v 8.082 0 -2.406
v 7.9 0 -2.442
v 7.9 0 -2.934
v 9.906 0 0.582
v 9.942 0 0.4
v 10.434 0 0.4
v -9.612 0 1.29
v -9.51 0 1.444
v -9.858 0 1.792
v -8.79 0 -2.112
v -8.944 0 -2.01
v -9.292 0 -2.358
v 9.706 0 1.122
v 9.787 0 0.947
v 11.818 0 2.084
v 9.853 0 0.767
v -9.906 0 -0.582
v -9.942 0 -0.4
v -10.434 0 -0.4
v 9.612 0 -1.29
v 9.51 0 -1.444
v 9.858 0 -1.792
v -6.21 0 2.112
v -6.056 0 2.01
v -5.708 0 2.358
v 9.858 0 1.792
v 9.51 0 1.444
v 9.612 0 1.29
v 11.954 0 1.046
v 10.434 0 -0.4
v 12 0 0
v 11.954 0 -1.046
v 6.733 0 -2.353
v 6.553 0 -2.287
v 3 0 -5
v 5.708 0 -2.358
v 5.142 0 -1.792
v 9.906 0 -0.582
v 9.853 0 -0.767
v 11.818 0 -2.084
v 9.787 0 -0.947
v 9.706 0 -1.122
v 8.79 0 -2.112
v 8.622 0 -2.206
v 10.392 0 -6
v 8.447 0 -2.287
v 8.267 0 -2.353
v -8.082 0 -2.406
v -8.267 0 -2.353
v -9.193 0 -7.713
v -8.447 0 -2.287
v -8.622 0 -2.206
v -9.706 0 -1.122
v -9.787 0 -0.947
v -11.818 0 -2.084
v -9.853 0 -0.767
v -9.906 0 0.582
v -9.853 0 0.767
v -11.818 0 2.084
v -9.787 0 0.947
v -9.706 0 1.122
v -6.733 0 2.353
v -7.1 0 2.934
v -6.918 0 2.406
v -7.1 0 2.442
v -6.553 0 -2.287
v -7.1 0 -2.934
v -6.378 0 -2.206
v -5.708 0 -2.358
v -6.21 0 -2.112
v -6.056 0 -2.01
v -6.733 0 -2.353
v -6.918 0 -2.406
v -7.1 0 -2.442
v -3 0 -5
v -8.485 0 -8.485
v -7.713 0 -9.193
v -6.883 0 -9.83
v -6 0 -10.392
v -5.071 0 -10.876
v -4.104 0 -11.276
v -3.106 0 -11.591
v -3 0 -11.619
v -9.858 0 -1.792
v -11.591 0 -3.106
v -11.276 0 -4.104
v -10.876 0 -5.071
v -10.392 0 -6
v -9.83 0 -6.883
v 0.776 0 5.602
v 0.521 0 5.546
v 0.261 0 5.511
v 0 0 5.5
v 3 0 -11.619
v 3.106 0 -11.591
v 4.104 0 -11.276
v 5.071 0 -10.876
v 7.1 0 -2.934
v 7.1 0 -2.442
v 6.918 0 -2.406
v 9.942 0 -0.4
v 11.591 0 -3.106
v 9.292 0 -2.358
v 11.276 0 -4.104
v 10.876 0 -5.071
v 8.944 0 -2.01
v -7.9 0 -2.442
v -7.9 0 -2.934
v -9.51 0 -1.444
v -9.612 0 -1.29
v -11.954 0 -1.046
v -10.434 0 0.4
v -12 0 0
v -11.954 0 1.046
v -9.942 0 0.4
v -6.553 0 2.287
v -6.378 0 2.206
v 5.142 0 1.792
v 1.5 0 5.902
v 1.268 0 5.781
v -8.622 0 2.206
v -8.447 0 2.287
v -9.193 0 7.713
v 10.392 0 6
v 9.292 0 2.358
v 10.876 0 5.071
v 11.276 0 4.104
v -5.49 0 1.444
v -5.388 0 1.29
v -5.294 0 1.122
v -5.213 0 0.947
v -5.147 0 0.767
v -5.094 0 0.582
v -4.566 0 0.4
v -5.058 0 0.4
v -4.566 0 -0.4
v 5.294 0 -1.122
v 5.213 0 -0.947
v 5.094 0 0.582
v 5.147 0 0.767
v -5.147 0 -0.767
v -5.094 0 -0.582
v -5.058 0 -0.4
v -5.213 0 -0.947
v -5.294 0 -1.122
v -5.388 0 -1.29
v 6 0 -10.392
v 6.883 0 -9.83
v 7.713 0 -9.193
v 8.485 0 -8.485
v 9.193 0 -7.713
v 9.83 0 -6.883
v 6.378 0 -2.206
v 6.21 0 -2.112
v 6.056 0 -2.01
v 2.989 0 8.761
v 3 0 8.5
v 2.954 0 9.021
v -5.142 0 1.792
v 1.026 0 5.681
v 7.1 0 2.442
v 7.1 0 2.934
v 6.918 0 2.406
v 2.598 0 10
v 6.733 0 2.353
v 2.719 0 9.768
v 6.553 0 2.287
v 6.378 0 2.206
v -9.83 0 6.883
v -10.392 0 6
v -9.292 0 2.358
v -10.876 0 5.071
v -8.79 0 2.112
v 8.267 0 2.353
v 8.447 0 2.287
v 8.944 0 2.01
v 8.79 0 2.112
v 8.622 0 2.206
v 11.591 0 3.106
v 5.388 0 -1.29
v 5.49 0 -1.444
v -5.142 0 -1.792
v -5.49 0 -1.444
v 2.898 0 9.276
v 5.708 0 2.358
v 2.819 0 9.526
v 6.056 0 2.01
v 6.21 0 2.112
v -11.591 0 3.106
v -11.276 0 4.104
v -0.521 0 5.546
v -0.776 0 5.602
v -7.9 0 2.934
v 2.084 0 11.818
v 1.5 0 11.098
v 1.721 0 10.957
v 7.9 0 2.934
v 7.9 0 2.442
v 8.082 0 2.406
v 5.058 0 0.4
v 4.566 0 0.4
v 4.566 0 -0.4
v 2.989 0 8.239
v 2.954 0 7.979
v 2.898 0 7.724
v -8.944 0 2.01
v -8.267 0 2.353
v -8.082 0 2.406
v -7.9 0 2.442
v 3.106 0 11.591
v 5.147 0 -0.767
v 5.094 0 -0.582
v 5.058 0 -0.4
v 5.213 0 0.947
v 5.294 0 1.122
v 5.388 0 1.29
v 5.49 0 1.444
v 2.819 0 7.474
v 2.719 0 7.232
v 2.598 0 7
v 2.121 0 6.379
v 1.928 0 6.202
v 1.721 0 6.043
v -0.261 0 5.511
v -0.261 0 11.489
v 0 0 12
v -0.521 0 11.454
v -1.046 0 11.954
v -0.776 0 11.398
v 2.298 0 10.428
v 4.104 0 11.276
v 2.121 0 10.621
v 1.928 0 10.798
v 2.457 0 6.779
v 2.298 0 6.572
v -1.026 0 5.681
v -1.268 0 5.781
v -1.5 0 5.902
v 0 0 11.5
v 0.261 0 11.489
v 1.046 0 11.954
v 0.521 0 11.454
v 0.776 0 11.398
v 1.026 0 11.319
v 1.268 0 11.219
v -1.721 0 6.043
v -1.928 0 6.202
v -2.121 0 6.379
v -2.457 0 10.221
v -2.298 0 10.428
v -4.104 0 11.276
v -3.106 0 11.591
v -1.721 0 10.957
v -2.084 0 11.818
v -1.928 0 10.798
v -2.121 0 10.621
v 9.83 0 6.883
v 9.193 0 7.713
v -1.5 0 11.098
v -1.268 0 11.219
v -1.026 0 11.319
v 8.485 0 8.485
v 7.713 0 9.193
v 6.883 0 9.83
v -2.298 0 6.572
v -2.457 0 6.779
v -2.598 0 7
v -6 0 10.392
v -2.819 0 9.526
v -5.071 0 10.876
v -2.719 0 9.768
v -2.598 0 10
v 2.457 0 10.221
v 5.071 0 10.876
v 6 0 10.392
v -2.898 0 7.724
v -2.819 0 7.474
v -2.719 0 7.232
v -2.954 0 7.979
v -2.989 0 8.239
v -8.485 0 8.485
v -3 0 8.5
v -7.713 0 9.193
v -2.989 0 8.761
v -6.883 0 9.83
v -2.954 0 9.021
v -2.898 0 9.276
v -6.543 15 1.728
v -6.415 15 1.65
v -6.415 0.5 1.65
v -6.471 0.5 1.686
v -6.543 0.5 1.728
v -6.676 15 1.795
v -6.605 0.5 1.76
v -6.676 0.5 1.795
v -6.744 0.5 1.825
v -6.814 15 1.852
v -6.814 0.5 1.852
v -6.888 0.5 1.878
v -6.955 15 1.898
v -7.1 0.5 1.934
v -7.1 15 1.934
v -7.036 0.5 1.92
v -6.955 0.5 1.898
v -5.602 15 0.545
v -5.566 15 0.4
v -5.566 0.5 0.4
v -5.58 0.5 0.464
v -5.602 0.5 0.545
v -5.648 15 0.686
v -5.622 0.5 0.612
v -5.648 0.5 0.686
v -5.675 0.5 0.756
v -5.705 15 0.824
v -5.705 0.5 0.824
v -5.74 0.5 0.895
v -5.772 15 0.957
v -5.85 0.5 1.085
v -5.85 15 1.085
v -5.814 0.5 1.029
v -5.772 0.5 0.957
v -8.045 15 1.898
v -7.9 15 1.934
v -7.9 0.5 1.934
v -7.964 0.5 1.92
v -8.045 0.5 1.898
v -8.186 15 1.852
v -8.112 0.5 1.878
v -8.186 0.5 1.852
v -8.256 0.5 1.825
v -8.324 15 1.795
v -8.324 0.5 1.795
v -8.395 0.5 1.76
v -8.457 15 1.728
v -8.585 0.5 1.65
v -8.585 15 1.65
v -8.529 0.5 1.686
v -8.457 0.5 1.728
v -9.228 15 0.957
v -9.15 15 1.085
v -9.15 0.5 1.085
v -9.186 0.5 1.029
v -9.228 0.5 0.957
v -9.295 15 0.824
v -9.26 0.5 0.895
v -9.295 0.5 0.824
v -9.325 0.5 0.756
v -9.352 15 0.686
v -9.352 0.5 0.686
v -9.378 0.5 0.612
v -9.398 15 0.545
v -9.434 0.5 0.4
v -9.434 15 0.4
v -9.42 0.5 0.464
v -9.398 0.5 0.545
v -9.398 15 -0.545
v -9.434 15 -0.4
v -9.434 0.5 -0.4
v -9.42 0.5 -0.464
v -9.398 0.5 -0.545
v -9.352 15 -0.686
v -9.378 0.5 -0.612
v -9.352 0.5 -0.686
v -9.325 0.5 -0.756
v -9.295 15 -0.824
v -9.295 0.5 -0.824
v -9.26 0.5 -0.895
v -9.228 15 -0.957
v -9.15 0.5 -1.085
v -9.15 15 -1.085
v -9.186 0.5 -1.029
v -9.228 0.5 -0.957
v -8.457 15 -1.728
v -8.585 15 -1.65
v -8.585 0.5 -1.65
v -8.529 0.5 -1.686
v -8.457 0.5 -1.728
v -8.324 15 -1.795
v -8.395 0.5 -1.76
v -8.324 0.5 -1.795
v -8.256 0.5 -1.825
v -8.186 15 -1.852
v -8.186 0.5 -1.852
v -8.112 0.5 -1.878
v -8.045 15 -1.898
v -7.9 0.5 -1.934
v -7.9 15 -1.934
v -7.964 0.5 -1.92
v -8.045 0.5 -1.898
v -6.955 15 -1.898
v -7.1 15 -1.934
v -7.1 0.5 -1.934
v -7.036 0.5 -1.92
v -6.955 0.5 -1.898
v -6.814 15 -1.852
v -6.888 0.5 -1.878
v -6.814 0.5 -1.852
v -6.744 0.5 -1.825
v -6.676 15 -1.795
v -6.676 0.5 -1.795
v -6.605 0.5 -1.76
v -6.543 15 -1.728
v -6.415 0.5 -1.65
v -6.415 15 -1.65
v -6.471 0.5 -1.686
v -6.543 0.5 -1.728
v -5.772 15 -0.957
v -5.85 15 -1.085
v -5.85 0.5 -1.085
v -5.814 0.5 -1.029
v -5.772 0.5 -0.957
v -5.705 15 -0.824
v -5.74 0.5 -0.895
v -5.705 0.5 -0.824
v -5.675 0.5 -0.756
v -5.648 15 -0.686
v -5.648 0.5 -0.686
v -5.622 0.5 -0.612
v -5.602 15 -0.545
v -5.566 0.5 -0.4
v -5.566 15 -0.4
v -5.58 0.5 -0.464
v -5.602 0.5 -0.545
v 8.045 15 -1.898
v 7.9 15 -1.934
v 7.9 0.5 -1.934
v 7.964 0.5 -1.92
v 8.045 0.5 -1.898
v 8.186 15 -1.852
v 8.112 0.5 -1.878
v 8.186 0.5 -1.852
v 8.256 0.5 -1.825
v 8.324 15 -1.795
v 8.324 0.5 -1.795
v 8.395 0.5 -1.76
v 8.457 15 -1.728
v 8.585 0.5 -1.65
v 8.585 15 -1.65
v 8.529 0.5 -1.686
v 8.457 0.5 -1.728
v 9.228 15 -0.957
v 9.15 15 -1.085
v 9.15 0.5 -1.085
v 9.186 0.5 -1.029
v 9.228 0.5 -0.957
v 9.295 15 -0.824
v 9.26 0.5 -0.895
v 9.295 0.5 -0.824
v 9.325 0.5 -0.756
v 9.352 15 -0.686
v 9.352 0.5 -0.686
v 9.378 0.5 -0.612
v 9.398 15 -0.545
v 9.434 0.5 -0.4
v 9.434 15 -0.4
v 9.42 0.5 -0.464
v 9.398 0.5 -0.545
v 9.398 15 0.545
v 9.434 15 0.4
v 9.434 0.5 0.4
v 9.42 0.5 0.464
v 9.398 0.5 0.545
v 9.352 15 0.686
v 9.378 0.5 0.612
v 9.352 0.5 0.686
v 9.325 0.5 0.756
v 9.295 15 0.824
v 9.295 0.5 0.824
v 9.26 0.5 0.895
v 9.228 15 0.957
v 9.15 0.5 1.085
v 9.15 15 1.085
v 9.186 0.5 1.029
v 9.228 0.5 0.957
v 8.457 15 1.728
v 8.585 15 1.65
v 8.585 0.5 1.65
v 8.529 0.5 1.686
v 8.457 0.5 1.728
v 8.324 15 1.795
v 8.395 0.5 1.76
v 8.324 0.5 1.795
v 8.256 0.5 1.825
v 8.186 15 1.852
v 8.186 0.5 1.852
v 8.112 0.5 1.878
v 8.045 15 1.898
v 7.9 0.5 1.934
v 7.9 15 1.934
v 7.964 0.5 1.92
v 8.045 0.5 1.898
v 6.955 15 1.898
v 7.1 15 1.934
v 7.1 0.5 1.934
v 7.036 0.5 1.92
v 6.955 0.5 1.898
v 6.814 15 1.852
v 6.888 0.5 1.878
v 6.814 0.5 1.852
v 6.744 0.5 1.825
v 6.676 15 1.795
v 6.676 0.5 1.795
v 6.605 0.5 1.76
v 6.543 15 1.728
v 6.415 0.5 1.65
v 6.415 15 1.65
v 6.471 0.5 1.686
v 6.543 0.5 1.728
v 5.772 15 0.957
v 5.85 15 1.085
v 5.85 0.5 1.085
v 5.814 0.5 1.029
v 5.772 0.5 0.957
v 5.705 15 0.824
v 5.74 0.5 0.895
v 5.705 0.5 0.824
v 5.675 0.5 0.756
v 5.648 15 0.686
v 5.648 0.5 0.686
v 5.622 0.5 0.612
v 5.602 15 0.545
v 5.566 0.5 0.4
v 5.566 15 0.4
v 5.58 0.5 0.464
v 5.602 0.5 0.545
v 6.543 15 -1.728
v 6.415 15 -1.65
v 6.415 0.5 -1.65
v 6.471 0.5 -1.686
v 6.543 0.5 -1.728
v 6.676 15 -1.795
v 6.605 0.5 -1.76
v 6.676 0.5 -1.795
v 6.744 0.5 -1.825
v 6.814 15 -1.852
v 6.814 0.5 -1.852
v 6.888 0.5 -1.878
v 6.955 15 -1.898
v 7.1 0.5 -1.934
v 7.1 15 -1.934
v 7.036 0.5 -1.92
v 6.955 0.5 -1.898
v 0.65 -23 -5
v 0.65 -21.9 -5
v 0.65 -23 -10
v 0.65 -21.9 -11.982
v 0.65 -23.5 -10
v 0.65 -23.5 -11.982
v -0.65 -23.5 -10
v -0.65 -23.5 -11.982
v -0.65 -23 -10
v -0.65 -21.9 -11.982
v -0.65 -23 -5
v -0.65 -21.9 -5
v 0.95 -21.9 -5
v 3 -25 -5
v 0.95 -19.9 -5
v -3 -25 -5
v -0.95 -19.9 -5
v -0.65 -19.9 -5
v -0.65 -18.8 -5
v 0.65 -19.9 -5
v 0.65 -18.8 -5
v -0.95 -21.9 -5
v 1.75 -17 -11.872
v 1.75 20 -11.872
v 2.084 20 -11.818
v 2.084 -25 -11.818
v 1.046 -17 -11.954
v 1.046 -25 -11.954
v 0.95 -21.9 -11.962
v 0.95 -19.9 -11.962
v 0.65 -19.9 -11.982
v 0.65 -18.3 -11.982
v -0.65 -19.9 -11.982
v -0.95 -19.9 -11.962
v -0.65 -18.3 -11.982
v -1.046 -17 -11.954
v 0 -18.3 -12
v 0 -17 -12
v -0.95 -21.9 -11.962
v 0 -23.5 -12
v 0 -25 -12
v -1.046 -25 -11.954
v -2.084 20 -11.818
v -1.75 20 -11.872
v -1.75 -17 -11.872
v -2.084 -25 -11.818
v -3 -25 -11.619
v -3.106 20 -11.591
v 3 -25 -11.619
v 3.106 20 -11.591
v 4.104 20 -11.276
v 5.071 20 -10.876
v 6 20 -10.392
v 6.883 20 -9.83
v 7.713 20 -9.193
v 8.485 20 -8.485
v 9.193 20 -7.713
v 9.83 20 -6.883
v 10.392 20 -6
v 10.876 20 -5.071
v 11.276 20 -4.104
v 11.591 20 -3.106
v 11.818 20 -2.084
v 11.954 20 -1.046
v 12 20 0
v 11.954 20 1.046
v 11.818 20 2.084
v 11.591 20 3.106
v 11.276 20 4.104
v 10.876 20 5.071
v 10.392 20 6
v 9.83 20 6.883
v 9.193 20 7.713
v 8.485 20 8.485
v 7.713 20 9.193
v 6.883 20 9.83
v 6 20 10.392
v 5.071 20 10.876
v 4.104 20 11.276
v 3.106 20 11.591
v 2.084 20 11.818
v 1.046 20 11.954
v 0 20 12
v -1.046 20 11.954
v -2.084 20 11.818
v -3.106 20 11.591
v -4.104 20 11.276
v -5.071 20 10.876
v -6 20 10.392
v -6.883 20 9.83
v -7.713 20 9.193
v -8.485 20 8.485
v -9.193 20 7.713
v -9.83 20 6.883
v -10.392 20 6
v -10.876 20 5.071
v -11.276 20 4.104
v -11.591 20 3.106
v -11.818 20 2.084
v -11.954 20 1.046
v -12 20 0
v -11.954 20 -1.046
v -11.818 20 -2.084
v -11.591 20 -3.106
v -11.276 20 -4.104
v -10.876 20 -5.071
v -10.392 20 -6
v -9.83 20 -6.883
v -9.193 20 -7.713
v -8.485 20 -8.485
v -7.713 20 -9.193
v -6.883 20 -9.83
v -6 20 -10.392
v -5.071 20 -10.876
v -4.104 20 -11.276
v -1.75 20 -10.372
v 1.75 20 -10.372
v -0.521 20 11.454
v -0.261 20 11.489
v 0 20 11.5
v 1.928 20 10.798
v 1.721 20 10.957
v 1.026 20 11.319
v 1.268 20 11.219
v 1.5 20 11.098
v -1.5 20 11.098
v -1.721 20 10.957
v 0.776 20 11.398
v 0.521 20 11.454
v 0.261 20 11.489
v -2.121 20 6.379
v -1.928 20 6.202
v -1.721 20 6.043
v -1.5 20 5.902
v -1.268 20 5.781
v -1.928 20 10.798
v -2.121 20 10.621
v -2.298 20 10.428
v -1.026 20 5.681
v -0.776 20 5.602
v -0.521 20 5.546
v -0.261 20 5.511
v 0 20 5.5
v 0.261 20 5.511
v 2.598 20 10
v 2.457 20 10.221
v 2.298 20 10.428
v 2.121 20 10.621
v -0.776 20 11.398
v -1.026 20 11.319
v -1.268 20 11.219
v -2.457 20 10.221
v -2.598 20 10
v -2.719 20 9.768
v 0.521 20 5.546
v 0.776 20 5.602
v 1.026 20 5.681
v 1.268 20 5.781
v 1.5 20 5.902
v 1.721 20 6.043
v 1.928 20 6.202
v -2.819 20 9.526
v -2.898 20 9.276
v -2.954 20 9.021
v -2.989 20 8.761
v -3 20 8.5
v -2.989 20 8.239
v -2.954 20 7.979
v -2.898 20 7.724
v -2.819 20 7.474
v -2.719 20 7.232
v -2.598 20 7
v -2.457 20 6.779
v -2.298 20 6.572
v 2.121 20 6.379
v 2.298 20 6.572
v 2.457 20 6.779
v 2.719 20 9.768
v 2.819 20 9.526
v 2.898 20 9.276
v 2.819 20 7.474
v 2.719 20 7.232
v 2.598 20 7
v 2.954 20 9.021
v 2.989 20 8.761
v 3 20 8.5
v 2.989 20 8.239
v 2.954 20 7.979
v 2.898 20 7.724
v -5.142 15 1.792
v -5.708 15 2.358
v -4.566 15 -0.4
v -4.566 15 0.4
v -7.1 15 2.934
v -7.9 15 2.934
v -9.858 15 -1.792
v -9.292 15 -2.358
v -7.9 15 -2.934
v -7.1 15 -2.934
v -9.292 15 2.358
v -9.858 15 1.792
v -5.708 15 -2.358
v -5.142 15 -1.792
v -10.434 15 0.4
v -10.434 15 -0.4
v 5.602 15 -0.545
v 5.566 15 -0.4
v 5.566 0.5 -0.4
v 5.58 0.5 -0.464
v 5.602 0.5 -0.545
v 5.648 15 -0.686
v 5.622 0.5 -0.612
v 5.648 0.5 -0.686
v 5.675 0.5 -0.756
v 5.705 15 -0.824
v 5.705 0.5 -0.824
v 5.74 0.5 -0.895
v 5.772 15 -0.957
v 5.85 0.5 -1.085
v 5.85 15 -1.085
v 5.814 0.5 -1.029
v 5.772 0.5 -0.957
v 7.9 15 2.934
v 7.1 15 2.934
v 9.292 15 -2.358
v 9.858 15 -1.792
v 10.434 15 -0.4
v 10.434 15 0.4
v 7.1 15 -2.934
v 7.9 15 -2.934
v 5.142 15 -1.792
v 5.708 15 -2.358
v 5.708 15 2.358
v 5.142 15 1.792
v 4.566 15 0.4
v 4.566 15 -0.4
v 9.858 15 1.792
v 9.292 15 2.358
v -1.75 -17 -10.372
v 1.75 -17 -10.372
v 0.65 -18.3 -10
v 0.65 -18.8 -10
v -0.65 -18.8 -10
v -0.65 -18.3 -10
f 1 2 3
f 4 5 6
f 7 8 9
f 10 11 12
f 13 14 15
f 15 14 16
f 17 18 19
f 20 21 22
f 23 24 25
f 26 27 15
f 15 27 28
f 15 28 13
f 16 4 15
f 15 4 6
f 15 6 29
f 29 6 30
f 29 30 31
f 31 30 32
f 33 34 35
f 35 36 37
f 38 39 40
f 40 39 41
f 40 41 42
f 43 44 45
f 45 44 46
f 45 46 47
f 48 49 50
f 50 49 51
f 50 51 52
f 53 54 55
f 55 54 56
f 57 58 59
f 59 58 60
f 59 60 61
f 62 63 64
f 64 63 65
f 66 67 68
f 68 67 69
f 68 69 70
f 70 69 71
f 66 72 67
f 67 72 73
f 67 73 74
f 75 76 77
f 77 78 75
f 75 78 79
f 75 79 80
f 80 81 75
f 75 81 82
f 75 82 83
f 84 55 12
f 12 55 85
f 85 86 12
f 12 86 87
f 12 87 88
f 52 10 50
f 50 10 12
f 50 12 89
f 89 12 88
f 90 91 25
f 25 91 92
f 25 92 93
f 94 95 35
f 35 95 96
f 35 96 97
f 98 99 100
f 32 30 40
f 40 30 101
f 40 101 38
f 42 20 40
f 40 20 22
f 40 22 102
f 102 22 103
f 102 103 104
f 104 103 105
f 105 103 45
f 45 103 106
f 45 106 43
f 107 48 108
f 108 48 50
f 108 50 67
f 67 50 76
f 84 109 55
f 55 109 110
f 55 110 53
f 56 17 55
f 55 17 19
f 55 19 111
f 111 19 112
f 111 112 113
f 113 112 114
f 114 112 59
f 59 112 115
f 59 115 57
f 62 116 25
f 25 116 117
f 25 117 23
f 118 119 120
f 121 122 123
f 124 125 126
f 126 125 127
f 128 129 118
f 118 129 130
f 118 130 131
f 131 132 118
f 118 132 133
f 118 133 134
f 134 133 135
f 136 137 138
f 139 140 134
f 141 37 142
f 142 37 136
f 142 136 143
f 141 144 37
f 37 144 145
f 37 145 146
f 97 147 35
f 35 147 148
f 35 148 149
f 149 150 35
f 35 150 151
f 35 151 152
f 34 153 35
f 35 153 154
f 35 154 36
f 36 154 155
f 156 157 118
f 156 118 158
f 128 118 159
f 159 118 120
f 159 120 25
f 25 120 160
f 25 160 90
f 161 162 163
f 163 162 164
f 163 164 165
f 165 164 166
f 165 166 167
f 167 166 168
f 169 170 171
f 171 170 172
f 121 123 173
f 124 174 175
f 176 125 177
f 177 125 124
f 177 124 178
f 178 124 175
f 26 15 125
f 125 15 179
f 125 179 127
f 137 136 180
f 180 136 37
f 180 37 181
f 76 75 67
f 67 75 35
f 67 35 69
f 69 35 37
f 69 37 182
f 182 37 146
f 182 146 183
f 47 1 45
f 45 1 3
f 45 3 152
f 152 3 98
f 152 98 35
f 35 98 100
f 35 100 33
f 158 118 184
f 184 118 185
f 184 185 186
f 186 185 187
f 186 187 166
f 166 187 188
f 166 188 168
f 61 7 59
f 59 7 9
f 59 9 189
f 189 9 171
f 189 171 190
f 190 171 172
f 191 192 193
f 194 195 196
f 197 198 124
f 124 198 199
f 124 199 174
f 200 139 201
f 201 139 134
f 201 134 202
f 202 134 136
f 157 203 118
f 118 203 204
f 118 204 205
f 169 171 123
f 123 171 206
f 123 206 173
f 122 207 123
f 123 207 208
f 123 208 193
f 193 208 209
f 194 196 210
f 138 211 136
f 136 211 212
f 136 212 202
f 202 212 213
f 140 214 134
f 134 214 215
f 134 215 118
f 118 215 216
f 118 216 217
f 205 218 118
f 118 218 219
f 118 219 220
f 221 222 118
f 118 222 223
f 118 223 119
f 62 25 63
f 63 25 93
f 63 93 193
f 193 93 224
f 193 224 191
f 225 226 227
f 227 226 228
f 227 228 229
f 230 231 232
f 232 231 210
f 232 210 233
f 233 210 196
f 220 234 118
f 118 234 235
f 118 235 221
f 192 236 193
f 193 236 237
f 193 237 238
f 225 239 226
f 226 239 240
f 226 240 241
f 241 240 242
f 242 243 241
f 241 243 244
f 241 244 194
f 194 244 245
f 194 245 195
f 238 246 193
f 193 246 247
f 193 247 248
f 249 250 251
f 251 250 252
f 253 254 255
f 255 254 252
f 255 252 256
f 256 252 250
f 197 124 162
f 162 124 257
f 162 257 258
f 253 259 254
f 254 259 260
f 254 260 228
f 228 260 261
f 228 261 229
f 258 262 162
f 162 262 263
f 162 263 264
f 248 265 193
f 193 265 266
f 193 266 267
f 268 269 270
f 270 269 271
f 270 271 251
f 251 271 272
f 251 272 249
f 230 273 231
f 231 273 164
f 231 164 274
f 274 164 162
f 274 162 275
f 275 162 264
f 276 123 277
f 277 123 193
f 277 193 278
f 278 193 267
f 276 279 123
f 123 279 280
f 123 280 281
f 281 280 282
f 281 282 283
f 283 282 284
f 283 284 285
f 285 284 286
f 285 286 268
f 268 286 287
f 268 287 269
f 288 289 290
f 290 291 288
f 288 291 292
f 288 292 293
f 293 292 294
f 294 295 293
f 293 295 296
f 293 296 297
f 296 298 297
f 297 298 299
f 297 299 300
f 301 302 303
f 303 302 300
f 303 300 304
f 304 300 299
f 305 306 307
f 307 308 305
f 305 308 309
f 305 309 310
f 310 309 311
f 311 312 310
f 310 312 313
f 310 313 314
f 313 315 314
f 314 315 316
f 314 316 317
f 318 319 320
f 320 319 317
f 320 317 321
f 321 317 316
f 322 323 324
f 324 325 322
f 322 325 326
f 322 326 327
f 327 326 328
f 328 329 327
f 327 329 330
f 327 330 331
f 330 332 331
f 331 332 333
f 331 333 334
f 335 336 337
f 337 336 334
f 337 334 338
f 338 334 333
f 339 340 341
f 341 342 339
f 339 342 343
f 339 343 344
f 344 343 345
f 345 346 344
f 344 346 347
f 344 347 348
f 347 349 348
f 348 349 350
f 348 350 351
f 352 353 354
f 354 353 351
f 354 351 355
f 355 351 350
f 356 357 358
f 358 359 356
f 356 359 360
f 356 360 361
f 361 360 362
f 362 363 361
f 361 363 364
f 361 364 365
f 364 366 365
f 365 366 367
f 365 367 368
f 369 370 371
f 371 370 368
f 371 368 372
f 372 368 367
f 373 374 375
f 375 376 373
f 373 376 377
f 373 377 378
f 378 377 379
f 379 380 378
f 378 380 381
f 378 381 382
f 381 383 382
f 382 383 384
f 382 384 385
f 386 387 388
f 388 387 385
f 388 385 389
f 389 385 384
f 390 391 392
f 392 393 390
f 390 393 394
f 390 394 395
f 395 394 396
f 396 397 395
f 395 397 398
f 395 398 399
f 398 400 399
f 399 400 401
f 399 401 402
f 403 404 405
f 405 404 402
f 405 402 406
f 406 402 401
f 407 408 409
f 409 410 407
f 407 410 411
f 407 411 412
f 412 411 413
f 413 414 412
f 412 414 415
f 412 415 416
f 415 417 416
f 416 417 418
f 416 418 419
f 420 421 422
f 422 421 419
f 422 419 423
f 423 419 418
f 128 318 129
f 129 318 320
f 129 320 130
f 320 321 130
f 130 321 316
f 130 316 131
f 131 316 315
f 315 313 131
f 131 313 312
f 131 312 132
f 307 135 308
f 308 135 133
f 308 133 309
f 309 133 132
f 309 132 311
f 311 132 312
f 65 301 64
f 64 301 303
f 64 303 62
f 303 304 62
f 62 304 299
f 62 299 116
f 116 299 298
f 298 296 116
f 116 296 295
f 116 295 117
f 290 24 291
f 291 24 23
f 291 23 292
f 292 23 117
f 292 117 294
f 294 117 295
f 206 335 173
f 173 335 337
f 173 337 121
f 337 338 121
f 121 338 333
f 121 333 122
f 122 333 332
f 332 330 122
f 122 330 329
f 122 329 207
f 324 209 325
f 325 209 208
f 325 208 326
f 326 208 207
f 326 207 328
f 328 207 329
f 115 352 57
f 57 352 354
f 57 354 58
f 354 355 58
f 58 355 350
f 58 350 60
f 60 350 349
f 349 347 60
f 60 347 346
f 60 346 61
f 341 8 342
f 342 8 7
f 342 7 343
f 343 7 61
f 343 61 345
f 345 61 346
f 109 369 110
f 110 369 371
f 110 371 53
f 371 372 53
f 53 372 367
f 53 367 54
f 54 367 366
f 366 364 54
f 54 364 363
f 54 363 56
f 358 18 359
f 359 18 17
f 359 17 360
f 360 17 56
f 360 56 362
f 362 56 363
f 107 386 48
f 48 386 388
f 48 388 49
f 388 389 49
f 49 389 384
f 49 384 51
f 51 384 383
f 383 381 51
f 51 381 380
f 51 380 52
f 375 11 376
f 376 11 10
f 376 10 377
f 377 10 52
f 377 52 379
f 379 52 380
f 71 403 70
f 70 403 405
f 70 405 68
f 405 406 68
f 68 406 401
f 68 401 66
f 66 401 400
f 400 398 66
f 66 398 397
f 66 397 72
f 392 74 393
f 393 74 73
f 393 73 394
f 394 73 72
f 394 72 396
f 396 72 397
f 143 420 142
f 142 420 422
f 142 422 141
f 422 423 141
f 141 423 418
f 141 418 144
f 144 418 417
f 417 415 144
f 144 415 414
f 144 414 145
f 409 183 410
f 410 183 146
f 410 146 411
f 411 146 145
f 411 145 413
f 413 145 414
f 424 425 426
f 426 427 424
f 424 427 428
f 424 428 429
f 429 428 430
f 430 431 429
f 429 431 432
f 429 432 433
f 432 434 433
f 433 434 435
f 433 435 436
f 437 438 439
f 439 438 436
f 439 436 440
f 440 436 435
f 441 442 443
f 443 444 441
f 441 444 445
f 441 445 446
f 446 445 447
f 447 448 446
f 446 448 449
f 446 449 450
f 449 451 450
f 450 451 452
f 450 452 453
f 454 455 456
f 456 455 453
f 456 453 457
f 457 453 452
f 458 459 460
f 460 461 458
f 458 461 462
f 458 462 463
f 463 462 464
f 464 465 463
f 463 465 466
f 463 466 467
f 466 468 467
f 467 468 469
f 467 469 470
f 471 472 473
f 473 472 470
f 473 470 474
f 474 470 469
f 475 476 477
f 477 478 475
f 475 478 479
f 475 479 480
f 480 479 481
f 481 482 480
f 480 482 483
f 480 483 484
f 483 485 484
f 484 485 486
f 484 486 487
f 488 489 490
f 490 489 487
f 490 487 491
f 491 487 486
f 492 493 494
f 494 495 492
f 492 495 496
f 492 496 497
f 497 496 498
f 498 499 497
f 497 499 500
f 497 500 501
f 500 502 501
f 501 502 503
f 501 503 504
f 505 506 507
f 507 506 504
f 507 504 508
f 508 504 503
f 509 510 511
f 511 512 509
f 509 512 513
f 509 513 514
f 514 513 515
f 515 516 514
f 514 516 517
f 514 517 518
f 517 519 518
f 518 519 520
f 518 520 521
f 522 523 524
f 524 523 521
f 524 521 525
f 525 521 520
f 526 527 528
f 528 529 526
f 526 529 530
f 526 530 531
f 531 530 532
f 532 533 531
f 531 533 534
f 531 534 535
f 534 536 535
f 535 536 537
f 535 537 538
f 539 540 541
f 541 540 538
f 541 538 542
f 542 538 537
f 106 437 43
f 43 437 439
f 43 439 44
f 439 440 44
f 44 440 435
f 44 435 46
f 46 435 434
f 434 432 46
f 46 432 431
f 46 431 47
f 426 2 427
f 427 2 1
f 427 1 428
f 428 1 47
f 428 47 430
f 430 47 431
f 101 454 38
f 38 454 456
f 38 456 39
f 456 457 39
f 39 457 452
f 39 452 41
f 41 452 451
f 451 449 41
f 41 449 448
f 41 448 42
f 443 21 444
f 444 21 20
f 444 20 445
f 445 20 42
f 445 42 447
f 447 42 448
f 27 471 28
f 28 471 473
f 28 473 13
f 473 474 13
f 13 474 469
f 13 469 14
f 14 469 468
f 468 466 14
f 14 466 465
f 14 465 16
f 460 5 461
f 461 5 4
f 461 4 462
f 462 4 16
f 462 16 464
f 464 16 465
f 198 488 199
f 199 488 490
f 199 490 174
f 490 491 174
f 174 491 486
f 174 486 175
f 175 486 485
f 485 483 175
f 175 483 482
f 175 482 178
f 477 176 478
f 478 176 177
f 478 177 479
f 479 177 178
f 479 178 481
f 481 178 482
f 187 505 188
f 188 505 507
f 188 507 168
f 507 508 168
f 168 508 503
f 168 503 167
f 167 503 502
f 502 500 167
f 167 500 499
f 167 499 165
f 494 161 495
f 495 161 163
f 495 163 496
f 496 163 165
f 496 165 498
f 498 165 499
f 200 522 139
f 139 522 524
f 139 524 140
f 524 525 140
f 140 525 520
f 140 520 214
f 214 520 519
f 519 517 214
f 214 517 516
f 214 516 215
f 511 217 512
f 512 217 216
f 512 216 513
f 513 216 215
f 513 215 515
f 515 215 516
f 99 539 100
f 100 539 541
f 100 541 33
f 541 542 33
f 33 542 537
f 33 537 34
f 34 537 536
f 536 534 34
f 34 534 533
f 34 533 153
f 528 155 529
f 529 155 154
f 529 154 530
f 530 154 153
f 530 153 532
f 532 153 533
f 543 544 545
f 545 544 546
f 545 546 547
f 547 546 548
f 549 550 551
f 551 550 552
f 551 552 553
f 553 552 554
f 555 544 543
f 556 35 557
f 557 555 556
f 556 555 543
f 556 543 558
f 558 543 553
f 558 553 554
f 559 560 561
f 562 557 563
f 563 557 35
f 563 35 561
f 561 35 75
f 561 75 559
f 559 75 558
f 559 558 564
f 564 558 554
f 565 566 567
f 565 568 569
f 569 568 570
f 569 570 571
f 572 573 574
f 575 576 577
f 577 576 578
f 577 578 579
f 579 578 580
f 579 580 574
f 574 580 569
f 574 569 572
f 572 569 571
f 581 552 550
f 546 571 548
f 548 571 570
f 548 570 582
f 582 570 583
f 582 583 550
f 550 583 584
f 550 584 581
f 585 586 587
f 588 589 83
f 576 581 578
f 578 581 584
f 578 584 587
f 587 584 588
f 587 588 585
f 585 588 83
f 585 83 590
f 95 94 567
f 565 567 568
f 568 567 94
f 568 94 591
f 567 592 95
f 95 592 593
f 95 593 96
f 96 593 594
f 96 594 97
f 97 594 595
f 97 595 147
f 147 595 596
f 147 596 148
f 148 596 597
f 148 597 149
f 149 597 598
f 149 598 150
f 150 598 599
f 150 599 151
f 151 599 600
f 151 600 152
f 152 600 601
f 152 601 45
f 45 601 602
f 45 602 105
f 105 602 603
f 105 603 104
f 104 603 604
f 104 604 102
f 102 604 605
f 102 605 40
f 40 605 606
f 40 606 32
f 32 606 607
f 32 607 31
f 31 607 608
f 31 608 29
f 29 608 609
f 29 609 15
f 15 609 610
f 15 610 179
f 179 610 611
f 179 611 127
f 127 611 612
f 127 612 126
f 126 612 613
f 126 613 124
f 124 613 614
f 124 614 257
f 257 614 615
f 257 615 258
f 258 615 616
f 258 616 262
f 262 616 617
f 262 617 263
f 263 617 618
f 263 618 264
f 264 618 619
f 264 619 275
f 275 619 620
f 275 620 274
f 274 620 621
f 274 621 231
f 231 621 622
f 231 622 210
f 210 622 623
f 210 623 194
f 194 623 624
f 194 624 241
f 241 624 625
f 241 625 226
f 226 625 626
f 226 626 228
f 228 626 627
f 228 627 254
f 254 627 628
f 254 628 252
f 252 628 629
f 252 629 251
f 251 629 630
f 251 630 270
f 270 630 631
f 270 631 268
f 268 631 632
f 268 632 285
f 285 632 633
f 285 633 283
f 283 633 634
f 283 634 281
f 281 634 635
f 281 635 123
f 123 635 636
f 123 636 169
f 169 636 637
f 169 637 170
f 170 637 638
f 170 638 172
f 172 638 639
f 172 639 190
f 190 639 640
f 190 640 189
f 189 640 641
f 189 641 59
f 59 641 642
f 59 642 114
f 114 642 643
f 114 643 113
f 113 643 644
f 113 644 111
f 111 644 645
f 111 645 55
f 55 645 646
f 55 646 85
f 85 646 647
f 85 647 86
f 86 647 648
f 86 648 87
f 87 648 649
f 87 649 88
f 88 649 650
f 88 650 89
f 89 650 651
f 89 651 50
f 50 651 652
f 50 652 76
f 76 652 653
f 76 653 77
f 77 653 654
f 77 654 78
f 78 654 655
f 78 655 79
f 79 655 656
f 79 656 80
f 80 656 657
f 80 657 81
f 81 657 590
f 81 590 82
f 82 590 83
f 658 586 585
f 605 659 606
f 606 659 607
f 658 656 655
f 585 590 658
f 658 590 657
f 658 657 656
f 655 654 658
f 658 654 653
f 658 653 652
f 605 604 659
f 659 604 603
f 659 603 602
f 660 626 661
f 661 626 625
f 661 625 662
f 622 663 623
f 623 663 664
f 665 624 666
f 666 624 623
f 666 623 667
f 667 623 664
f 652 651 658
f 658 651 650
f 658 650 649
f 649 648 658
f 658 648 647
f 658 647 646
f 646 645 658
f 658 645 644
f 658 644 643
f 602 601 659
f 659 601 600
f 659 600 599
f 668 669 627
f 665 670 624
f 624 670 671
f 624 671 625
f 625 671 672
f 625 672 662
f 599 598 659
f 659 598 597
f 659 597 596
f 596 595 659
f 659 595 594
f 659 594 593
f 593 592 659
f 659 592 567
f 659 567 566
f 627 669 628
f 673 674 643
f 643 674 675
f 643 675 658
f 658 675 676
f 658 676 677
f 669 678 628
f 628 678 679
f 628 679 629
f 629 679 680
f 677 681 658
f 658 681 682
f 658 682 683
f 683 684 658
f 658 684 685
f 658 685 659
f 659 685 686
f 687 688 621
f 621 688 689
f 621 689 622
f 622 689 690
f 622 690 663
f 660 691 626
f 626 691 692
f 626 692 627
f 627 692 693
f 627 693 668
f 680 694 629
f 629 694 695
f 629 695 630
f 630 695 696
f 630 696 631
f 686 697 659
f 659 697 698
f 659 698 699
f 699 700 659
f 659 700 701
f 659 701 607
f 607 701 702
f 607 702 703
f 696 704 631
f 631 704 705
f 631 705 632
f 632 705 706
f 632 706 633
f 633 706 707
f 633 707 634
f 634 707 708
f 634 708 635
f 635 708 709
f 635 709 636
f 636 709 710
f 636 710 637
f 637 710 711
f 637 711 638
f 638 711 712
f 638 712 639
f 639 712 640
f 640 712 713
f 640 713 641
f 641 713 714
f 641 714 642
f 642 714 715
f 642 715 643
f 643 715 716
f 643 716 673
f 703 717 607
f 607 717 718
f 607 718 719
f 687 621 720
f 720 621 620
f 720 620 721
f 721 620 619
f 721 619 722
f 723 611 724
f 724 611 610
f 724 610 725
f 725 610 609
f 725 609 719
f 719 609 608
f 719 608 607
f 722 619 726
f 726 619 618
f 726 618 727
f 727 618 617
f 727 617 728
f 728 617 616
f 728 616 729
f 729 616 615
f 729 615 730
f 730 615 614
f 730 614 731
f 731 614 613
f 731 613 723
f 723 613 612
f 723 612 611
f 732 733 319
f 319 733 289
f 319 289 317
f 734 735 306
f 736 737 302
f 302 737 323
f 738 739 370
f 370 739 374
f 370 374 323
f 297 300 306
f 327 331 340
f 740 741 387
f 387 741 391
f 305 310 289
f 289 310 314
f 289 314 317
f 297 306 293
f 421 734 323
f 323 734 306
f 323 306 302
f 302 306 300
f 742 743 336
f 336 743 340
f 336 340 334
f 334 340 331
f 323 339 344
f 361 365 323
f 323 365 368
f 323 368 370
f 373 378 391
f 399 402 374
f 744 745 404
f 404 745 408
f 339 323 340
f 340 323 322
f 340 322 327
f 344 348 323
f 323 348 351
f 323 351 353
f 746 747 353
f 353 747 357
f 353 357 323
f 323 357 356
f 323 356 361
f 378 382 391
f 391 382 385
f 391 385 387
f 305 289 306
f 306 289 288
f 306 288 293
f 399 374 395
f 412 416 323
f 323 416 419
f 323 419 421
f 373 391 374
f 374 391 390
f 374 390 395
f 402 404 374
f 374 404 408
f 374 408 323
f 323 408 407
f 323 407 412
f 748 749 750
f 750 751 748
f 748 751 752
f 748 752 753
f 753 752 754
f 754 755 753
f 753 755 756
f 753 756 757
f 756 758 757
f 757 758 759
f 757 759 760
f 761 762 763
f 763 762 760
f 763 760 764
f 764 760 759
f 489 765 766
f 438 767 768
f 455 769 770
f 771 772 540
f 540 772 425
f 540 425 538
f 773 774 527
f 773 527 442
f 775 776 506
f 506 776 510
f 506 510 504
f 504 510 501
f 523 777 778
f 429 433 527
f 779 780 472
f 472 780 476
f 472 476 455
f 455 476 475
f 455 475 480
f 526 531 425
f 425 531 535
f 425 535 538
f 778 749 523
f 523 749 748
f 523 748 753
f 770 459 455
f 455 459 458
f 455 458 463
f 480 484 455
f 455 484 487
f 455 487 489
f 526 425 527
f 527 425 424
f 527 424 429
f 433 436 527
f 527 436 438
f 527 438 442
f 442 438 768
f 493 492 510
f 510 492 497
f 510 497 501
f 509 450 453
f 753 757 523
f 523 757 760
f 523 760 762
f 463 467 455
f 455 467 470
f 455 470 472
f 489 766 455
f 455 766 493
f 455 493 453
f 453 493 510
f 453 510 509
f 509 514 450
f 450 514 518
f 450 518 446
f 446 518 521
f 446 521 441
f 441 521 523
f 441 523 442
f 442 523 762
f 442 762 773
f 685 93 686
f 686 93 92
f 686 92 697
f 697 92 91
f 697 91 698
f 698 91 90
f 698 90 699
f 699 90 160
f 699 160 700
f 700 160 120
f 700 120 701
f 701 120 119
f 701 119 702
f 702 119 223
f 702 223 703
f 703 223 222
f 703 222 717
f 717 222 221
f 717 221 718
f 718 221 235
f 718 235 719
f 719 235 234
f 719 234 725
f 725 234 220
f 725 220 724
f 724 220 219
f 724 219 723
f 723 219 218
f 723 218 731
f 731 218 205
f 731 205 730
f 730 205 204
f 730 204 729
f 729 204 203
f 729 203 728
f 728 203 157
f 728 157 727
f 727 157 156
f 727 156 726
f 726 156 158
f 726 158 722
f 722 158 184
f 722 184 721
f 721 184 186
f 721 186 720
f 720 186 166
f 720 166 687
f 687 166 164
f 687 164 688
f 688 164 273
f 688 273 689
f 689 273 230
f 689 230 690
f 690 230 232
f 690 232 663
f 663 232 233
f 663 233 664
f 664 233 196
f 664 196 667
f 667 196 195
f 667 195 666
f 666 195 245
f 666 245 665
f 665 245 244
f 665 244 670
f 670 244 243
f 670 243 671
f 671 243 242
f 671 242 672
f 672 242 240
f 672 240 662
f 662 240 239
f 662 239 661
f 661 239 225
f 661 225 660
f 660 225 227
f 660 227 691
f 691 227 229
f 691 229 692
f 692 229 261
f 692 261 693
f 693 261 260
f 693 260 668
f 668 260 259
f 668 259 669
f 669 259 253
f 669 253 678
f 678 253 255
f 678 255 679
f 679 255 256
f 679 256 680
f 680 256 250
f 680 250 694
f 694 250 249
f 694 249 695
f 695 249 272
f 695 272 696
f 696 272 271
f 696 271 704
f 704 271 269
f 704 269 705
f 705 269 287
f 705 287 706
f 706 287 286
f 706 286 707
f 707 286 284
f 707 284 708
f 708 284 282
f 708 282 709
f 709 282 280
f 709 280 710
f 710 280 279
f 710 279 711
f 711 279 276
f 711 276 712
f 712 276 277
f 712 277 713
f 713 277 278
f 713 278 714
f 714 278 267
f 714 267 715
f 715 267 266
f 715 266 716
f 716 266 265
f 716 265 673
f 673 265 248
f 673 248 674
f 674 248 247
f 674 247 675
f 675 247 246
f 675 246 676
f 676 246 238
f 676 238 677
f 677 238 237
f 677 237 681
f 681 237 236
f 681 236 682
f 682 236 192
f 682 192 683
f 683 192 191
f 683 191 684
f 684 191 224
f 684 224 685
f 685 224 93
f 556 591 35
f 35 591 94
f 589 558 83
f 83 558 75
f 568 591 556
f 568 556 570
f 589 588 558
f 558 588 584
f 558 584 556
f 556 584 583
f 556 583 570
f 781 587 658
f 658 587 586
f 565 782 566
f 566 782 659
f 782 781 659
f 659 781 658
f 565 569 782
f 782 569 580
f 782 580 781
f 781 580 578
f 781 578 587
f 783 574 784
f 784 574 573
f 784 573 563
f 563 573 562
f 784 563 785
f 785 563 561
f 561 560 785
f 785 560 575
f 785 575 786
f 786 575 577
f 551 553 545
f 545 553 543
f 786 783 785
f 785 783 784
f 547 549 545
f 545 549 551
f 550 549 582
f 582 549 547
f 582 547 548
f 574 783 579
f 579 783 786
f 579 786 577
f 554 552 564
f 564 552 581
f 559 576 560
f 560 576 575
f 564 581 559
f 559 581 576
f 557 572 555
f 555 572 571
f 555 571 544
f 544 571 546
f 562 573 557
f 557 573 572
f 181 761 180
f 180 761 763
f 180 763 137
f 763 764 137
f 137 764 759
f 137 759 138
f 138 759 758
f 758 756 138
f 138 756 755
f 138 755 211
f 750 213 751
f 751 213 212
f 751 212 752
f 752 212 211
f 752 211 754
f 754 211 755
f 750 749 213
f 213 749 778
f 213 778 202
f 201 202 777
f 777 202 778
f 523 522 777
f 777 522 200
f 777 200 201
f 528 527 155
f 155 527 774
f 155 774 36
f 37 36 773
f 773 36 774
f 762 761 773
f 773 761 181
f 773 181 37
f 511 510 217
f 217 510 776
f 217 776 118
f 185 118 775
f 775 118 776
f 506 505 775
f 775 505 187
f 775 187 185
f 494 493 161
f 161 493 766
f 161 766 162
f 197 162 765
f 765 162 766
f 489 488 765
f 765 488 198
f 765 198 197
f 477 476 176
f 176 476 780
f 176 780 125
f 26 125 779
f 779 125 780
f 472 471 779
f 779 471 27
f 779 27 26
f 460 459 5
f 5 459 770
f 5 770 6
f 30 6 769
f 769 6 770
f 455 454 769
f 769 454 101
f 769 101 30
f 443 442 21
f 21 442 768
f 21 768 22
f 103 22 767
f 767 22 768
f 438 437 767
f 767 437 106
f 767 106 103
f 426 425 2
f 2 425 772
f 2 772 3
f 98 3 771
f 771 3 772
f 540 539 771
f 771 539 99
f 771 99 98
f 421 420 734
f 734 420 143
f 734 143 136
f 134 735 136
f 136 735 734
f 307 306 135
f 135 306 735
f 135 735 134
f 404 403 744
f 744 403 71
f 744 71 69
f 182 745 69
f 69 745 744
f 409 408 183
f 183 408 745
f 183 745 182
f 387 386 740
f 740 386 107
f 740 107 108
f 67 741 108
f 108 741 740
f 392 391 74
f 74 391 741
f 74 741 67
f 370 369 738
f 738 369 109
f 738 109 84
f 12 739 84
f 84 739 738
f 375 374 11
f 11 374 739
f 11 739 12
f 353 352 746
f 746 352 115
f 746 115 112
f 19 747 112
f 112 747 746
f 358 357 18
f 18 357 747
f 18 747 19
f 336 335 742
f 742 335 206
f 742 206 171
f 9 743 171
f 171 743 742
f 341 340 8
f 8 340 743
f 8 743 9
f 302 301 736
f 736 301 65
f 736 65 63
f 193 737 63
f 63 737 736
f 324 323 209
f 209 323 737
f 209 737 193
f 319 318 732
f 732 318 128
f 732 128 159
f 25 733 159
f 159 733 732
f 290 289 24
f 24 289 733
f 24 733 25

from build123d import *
from build123d.topology import SkipClean

# Parameters (mm, degrees)
SKETCH_1_R               = 12
EXTRUDE_1_DEPTH          = 20
SKETCH_2_R               = 1.975
CUT_EXTRUDE_1_DEPTH      = 15
SKETCH_3_R               = 3
CUT_EXTRUDE_2_DEPTH      = 27.229754097
EXTRUDE_START            = 25
SKETCH_4_W               = 6
SKETCH_4_H               = 6.618950039
EXTRUDE_2_DEPTH          = 25
CUT_EXTRUDE_START        = -37
SKETCH_5_W               = 3.5
SKETCH_5_H               = 1.5
CUT_EXTRUDE_3_DEPTH      = 37
CUT_EXTRUDE_4_DEPTH      = 33.526911935
CUT_EXTRUDE_4_DEPTH_BACK = 5
SKETCH_6_W               = 1.3
SKETCH_6_H               = 4.2
SKETCH_7_W               = 1.3
SKETCH_7_H               = 5.2
CUT_EXTRUDE_5_DEPTH      = 36.397740041
SKETCH_8_W               = 1.9
SKETCH_8_H               = 2
CUT_EXTRUDE_6_DEPTH      = 33.526911935
CHAMFER_1_SIZE           = 0.5
SKETCH_9_W               = 1
SKETCH_9_H               = 0.8
CUT_EXTRUDE_7_DEPTH      = 15
PATTERN_CIRCULAR_1_COUNT = 8
MIRROR_1_COPY_1_SKETCH_W = 1
MIRROR_1_COPY_1_SKETCH_H = 0.8
MIRROR_1_COPY_1_DEPTH    = 15
MIRROR_1_COPY_2_SKETCH_W = 1
MIRROR_1_COPY_2_SKETCH_H = 0.8
MIRROR_1_COPY_2_DEPTH    = 15
MIRROR_1_COPY_3_SKETCH_W = 1
MIRROR_1_COPY_3_SKETCH_H = 0.8
MIRROR_1_COPY_3_DEPTH    = 15
MIRROR_1_COPY_4_SKETCH_W = 1
MIRROR_1_COPY_4_SKETCH_H = 0.8
MIRROR_1_COPY_4_DEPTH    = 15
MIRROR_1_COPY_5_SKETCH_W = 1
MIRROR_1_COPY_5_SKETCH_H = 0.8
MIRROR_1_COPY_5_DEPTH    = 15
MIRROR_1_COPY_6_SKETCH_W = 1
MIRROR_1_COPY_6_SKETCH_H = 0.8
MIRROR_1_COPY_6_DEPTH    = 15
MIRROR_1_COPY_7_SKETCH_W = 1
MIRROR_1_COPY_7_SKETCH_H = 0.8
MIRROR_1_COPY_7_DEPTH    = 15


with BuildPart() as part:
    # 草图1 → 凸台-拉伸1 (new body)
    with BuildSketch(Plane(origin=(0, 0, 0), x_dir=(1, 0, 0), z_dir=(0, 1, 0))):
        with Locations(Location((0, 0, 0), (0, 0, 270))):
            Circle(SKETCH_1_R)
    extrude(amount=EXTRUDE_1_DEPTH)

    # 草图2 → 切除-拉伸1 (cut)
    with BuildSketch(Plane.XZ):
        with Locations(Location((7.5, 0, 0), (0, 0, 270))):
            Circle(SKETCH_2_R)
        with Locations(Location((-7.5, 0, 0), (0, 0, 90))):
            Circle(SKETCH_2_R)
    extrude(amount=-CUT_EXTRUDE_1_DEPTH, mode=Mode.SUBTRACT)

    # 草图3 → 切除-拉伸2 (cut, through all)
    with BuildSketch(Plane.XZ):
        with Locations(Location((0, 8.5, 0), (0, 0, 270))):
            Circle(SKETCH_3_R)
    extrude(amount=-CUT_EXTRUDE_2_DEPTH, mode=Mode.SUBTRACT)

    # 草图4 → 凸台-拉伸2 (add)
    with SkipClean():  # the faces are left unmerged after this step: merging them gives an invalid solid
        with BuildSketch(Plane.XZ.offset(EXTRUDE_START)):
            with Locations((0, -8.30947502)):
                Rectangle(SKETCH_4_W, SKETCH_4_H)
            with BuildLine():
                Line((3, -11.618950039), (-3, -11.618950039))
                ThreePointArc((-3, -11.618950039), (0, -12), (3, -11.618950039))
            make_face()
        extrude(amount=-EXTRUDE_2_DEPTH)

    # 草图5 → 切除-拉伸3 (cut)
    with SkipClean():  # the faces are left unmerged after this step: merging them gives an invalid solid
        with BuildSketch(Plane(origin=(0, 20, 0), x_dir=(1, 0, 0), z_dir=(0, 1, 0)).offset(CUT_EXTRUDE_START)):
            with Locations((0, 11.121710071)):
                Rectangle(SKETCH_5_W, SKETCH_5_H)
            with BuildLine():
                Line((-1.75, 11.871710071), (1.75, 11.871710071))
                ThreePointArc((1.75, 11.871710071), (0, 12), (-1.75, 11.871710071))
            make_face()
        extrude(amount=CUT_EXTRUDE_3_DEPTH, mode=Mode.SUBTRACT)

    # 草图6 → 切除-拉伸4 (cut, two sides: drawn at the far end of the back side and taken through both)
    with SkipClean():  # the faces are left unmerged after this step: merging them gives an invalid solid
        with BuildSketch(Plane.XY.offset(-5).offset(-CUT_EXTRUDE_4_DEPTH_BACK)):
            with Locations((0, -20.9)):
                Rectangle(SKETCH_6_W, SKETCH_6_H)
        extrude(amount=CUT_EXTRUDE_4_DEPTH + CUT_EXTRUDE_4_DEPTH_BACK, mode=Mode.SUBTRACT)

    # 草图7 → 切除-拉伸5 (cut, through all)
    with SkipClean():  # the faces are left unmerged after this step: merging them gives an invalid solid
        with BuildSketch(Plane.XY.offset(-10)):
            with Locations((0, -20.9)):
                Rectangle(SKETCH_7_W, SKETCH_7_H)
        extrude(amount=-CUT_EXTRUDE_5_DEPTH, mode=Mode.SUBTRACT)

    # 草图8 → 切除-拉伸6 (cut, through all)
    with SkipClean():  # the faces are left unmerged after this step: merging them gives an invalid solid
        with BuildSketch(Plane.XY.offset(-5)):
            with Locations((0, -20.9)):
                Rectangle(SKETCH_8_W, SKETCH_8_H)
        extrude(amount=-CUT_EXTRUDE_6_DEPTH, mode=Mode.SUBTRACT)

    # 倒角1
    chamfer_1_edges = [part.edges().sort_by_distance(p)[0] for p in [
        (7.5, 0, 1.975),
        (-7.5, 0, -1.975),
    ]]
    chamfer(chamfer_1_edges, length=CHAMFER_1_SIZE)

    # 草图9 → 切除-拉伸7 (cut)
    with SkipClean():  # the faces are left unmerged after this step: merging them gives an invalid solid
        with BuildSketch(Plane.XZ):
            with Locations((5.065930456, 0)):
                Rectangle(SKETCH_9_W, SKETCH_9_H)
        cut_extrude_7 = extrude(amount=-CUT_EXTRUDE_7_DEPTH, mode=Mode.SUBTRACT)

    # 阵列(圆周)1: 切除-拉伸7 ×8 about axis
    with SkipClean():  # the faces are left unmerged after this step: merging them gives an invalid solid
        pattern_circular_1_axis = Axis((7.5, 0, 0), (0, 1, 0))
        for i in range(1, PATTERN_CIRCULAR_1_COUNT):
            add(cut_extrude_7.rotate(pattern_circular_1_axis, i * 360 / PATTERN_CIRCULAR_1_COUNT), mode=Mode.SUBTRACT)

    # 镜向1: 切除-拉伸7 across plane
    with SkipClean():  # the faces are left unmerged after this step: merging them gives an invalid solid
        add(cut_extrude_7.mirror(Plane(origin=(0, 0, 0), x_dir=(0, 0, 1), z_dir=(1, 0, 0))), mode=Mode.SUBTRACT)

    # 镜向1 copy 1 sketch → 镜向1 copy 1 (cut)
    with SkipClean():  # the faces are left unmerged after this step: merging them gives an invalid solid
        with BuildSketch(Plane(origin=(-2.196699141, 0, 5.303300859), x_dir=(-0.7071067811865476, 0, -0.7071067811865475), z_dir=(0, -1, 0))):
            with Locations((5.065930456, 0)):
                Rectangle(MIRROR_1_COPY_1_SKETCH_W, MIRROR_1_COPY_1_SKETCH_H)
        extrude(amount=-MIRROR_1_COPY_1_DEPTH, mode=Mode.SUBTRACT)

    # 镜向1 copy 2 sketch → 镜向1 copy 2 (cut)
    with SkipClean():  # the faces are left unmerged after this step: merging them gives an invalid solid
        with BuildSketch(Plane(origin=(-7.5, 0, 7.5), x_dir=(0, 0, -1), z_dir=(0, -1, 0))):
            with Locations((5.065930456, 0)):
                Rectangle(MIRROR_1_COPY_2_SKETCH_W, MIRROR_1_COPY_2_SKETCH_H)
        extrude(amount=-MIRROR_1_COPY_2_DEPTH, mode=Mode.SUBTRACT)

    # 镜向1 copy 3 sketch → 镜向1 copy 3 (cut)
    with SkipClean():  # the faces are left unmerged after this step: merging them gives an invalid solid
        with BuildSketch(Plane(origin=(-12.803300859, 0, 5.303300859), x_dir=(0.7071067811865475, 0, -0.7071067811865476), z_dir=(0, -1, 0))):
            with Locations((5.065930456, 0)):
                Rectangle(MIRROR_1_COPY_3_SKETCH_W, MIRROR_1_COPY_3_SKETCH_H)
        extrude(amount=-MIRROR_1_COPY_3_DEPTH, mode=Mode.SUBTRACT)

    # 镜向1 copy 4 sketch → 镜向1 copy 4 (cut)
    with SkipClean():  # the faces are left unmerged after this step: merging them gives an invalid solid
        with BuildSketch(Plane(origin=(-15, 0, 0), x_dir=(1, 0, 0), z_dir=(0, -1, 0))):
            with Locations((5.065930456, 0)):
                Rectangle(MIRROR_1_COPY_4_SKETCH_W, MIRROR_1_COPY_4_SKETCH_H)
        extrude(amount=-MIRROR_1_COPY_4_DEPTH, mode=Mode.SUBTRACT)

    # 镜向1 copy 5 sketch → 镜向1 copy 5 (cut)
    with SkipClean():  # the faces are left unmerged after this step: merging them gives an invalid solid
        with BuildSketch(Plane(origin=(-12.803300859, 0, -5.303300859), x_dir=(0.7071067811865477, 0, 0.7071067811865475), z_dir=(0, -1, 0))):
            with Locations((5.065930456, 0)):
                Rectangle(MIRROR_1_COPY_5_SKETCH_W, MIRROR_1_COPY_5_SKETCH_H)
        extrude(amount=-MIRROR_1_COPY_5_DEPTH, mode=Mode.SUBTRACT)

    # 镜向1 copy 6 sketch → 镜向1 copy 6 (cut)
    with SkipClean():  # the faces are left unmerged after this step: merging them gives an invalid solid
        with BuildSketch(Plane(origin=(-7.5, 0, -7.5), x_dir=(0, 0, 1), z_dir=(0, -1, 0))):
            with Locations((5.065930456, 0)):
                Rectangle(MIRROR_1_COPY_6_SKETCH_W, MIRROR_1_COPY_6_SKETCH_H)
        extrude(amount=-MIRROR_1_COPY_6_DEPTH, mode=Mode.SUBTRACT)

    # 镜向1 copy 7 sketch → 镜向1 copy 7 (cut)
    with SkipClean():  # the faces are left unmerged after this step: merging them gives an invalid solid
        with BuildSketch(Plane(origin=(-2.196699141, 0, -5.303300859), x_dir=(-0.7071067811865474, 0, 0.7071067811865477), z_dir=(0, -1, 0))):
            with Locations((5.065930456, 0)):
                Rectangle(MIRROR_1_COPY_7_SKETCH_W, MIRROR_1_COPY_7_SKETCH_H)
        extrude(amount=-MIRROR_1_COPY_7_DEPTH, mode=Mode.SUBTRACT)


solid = part.part
